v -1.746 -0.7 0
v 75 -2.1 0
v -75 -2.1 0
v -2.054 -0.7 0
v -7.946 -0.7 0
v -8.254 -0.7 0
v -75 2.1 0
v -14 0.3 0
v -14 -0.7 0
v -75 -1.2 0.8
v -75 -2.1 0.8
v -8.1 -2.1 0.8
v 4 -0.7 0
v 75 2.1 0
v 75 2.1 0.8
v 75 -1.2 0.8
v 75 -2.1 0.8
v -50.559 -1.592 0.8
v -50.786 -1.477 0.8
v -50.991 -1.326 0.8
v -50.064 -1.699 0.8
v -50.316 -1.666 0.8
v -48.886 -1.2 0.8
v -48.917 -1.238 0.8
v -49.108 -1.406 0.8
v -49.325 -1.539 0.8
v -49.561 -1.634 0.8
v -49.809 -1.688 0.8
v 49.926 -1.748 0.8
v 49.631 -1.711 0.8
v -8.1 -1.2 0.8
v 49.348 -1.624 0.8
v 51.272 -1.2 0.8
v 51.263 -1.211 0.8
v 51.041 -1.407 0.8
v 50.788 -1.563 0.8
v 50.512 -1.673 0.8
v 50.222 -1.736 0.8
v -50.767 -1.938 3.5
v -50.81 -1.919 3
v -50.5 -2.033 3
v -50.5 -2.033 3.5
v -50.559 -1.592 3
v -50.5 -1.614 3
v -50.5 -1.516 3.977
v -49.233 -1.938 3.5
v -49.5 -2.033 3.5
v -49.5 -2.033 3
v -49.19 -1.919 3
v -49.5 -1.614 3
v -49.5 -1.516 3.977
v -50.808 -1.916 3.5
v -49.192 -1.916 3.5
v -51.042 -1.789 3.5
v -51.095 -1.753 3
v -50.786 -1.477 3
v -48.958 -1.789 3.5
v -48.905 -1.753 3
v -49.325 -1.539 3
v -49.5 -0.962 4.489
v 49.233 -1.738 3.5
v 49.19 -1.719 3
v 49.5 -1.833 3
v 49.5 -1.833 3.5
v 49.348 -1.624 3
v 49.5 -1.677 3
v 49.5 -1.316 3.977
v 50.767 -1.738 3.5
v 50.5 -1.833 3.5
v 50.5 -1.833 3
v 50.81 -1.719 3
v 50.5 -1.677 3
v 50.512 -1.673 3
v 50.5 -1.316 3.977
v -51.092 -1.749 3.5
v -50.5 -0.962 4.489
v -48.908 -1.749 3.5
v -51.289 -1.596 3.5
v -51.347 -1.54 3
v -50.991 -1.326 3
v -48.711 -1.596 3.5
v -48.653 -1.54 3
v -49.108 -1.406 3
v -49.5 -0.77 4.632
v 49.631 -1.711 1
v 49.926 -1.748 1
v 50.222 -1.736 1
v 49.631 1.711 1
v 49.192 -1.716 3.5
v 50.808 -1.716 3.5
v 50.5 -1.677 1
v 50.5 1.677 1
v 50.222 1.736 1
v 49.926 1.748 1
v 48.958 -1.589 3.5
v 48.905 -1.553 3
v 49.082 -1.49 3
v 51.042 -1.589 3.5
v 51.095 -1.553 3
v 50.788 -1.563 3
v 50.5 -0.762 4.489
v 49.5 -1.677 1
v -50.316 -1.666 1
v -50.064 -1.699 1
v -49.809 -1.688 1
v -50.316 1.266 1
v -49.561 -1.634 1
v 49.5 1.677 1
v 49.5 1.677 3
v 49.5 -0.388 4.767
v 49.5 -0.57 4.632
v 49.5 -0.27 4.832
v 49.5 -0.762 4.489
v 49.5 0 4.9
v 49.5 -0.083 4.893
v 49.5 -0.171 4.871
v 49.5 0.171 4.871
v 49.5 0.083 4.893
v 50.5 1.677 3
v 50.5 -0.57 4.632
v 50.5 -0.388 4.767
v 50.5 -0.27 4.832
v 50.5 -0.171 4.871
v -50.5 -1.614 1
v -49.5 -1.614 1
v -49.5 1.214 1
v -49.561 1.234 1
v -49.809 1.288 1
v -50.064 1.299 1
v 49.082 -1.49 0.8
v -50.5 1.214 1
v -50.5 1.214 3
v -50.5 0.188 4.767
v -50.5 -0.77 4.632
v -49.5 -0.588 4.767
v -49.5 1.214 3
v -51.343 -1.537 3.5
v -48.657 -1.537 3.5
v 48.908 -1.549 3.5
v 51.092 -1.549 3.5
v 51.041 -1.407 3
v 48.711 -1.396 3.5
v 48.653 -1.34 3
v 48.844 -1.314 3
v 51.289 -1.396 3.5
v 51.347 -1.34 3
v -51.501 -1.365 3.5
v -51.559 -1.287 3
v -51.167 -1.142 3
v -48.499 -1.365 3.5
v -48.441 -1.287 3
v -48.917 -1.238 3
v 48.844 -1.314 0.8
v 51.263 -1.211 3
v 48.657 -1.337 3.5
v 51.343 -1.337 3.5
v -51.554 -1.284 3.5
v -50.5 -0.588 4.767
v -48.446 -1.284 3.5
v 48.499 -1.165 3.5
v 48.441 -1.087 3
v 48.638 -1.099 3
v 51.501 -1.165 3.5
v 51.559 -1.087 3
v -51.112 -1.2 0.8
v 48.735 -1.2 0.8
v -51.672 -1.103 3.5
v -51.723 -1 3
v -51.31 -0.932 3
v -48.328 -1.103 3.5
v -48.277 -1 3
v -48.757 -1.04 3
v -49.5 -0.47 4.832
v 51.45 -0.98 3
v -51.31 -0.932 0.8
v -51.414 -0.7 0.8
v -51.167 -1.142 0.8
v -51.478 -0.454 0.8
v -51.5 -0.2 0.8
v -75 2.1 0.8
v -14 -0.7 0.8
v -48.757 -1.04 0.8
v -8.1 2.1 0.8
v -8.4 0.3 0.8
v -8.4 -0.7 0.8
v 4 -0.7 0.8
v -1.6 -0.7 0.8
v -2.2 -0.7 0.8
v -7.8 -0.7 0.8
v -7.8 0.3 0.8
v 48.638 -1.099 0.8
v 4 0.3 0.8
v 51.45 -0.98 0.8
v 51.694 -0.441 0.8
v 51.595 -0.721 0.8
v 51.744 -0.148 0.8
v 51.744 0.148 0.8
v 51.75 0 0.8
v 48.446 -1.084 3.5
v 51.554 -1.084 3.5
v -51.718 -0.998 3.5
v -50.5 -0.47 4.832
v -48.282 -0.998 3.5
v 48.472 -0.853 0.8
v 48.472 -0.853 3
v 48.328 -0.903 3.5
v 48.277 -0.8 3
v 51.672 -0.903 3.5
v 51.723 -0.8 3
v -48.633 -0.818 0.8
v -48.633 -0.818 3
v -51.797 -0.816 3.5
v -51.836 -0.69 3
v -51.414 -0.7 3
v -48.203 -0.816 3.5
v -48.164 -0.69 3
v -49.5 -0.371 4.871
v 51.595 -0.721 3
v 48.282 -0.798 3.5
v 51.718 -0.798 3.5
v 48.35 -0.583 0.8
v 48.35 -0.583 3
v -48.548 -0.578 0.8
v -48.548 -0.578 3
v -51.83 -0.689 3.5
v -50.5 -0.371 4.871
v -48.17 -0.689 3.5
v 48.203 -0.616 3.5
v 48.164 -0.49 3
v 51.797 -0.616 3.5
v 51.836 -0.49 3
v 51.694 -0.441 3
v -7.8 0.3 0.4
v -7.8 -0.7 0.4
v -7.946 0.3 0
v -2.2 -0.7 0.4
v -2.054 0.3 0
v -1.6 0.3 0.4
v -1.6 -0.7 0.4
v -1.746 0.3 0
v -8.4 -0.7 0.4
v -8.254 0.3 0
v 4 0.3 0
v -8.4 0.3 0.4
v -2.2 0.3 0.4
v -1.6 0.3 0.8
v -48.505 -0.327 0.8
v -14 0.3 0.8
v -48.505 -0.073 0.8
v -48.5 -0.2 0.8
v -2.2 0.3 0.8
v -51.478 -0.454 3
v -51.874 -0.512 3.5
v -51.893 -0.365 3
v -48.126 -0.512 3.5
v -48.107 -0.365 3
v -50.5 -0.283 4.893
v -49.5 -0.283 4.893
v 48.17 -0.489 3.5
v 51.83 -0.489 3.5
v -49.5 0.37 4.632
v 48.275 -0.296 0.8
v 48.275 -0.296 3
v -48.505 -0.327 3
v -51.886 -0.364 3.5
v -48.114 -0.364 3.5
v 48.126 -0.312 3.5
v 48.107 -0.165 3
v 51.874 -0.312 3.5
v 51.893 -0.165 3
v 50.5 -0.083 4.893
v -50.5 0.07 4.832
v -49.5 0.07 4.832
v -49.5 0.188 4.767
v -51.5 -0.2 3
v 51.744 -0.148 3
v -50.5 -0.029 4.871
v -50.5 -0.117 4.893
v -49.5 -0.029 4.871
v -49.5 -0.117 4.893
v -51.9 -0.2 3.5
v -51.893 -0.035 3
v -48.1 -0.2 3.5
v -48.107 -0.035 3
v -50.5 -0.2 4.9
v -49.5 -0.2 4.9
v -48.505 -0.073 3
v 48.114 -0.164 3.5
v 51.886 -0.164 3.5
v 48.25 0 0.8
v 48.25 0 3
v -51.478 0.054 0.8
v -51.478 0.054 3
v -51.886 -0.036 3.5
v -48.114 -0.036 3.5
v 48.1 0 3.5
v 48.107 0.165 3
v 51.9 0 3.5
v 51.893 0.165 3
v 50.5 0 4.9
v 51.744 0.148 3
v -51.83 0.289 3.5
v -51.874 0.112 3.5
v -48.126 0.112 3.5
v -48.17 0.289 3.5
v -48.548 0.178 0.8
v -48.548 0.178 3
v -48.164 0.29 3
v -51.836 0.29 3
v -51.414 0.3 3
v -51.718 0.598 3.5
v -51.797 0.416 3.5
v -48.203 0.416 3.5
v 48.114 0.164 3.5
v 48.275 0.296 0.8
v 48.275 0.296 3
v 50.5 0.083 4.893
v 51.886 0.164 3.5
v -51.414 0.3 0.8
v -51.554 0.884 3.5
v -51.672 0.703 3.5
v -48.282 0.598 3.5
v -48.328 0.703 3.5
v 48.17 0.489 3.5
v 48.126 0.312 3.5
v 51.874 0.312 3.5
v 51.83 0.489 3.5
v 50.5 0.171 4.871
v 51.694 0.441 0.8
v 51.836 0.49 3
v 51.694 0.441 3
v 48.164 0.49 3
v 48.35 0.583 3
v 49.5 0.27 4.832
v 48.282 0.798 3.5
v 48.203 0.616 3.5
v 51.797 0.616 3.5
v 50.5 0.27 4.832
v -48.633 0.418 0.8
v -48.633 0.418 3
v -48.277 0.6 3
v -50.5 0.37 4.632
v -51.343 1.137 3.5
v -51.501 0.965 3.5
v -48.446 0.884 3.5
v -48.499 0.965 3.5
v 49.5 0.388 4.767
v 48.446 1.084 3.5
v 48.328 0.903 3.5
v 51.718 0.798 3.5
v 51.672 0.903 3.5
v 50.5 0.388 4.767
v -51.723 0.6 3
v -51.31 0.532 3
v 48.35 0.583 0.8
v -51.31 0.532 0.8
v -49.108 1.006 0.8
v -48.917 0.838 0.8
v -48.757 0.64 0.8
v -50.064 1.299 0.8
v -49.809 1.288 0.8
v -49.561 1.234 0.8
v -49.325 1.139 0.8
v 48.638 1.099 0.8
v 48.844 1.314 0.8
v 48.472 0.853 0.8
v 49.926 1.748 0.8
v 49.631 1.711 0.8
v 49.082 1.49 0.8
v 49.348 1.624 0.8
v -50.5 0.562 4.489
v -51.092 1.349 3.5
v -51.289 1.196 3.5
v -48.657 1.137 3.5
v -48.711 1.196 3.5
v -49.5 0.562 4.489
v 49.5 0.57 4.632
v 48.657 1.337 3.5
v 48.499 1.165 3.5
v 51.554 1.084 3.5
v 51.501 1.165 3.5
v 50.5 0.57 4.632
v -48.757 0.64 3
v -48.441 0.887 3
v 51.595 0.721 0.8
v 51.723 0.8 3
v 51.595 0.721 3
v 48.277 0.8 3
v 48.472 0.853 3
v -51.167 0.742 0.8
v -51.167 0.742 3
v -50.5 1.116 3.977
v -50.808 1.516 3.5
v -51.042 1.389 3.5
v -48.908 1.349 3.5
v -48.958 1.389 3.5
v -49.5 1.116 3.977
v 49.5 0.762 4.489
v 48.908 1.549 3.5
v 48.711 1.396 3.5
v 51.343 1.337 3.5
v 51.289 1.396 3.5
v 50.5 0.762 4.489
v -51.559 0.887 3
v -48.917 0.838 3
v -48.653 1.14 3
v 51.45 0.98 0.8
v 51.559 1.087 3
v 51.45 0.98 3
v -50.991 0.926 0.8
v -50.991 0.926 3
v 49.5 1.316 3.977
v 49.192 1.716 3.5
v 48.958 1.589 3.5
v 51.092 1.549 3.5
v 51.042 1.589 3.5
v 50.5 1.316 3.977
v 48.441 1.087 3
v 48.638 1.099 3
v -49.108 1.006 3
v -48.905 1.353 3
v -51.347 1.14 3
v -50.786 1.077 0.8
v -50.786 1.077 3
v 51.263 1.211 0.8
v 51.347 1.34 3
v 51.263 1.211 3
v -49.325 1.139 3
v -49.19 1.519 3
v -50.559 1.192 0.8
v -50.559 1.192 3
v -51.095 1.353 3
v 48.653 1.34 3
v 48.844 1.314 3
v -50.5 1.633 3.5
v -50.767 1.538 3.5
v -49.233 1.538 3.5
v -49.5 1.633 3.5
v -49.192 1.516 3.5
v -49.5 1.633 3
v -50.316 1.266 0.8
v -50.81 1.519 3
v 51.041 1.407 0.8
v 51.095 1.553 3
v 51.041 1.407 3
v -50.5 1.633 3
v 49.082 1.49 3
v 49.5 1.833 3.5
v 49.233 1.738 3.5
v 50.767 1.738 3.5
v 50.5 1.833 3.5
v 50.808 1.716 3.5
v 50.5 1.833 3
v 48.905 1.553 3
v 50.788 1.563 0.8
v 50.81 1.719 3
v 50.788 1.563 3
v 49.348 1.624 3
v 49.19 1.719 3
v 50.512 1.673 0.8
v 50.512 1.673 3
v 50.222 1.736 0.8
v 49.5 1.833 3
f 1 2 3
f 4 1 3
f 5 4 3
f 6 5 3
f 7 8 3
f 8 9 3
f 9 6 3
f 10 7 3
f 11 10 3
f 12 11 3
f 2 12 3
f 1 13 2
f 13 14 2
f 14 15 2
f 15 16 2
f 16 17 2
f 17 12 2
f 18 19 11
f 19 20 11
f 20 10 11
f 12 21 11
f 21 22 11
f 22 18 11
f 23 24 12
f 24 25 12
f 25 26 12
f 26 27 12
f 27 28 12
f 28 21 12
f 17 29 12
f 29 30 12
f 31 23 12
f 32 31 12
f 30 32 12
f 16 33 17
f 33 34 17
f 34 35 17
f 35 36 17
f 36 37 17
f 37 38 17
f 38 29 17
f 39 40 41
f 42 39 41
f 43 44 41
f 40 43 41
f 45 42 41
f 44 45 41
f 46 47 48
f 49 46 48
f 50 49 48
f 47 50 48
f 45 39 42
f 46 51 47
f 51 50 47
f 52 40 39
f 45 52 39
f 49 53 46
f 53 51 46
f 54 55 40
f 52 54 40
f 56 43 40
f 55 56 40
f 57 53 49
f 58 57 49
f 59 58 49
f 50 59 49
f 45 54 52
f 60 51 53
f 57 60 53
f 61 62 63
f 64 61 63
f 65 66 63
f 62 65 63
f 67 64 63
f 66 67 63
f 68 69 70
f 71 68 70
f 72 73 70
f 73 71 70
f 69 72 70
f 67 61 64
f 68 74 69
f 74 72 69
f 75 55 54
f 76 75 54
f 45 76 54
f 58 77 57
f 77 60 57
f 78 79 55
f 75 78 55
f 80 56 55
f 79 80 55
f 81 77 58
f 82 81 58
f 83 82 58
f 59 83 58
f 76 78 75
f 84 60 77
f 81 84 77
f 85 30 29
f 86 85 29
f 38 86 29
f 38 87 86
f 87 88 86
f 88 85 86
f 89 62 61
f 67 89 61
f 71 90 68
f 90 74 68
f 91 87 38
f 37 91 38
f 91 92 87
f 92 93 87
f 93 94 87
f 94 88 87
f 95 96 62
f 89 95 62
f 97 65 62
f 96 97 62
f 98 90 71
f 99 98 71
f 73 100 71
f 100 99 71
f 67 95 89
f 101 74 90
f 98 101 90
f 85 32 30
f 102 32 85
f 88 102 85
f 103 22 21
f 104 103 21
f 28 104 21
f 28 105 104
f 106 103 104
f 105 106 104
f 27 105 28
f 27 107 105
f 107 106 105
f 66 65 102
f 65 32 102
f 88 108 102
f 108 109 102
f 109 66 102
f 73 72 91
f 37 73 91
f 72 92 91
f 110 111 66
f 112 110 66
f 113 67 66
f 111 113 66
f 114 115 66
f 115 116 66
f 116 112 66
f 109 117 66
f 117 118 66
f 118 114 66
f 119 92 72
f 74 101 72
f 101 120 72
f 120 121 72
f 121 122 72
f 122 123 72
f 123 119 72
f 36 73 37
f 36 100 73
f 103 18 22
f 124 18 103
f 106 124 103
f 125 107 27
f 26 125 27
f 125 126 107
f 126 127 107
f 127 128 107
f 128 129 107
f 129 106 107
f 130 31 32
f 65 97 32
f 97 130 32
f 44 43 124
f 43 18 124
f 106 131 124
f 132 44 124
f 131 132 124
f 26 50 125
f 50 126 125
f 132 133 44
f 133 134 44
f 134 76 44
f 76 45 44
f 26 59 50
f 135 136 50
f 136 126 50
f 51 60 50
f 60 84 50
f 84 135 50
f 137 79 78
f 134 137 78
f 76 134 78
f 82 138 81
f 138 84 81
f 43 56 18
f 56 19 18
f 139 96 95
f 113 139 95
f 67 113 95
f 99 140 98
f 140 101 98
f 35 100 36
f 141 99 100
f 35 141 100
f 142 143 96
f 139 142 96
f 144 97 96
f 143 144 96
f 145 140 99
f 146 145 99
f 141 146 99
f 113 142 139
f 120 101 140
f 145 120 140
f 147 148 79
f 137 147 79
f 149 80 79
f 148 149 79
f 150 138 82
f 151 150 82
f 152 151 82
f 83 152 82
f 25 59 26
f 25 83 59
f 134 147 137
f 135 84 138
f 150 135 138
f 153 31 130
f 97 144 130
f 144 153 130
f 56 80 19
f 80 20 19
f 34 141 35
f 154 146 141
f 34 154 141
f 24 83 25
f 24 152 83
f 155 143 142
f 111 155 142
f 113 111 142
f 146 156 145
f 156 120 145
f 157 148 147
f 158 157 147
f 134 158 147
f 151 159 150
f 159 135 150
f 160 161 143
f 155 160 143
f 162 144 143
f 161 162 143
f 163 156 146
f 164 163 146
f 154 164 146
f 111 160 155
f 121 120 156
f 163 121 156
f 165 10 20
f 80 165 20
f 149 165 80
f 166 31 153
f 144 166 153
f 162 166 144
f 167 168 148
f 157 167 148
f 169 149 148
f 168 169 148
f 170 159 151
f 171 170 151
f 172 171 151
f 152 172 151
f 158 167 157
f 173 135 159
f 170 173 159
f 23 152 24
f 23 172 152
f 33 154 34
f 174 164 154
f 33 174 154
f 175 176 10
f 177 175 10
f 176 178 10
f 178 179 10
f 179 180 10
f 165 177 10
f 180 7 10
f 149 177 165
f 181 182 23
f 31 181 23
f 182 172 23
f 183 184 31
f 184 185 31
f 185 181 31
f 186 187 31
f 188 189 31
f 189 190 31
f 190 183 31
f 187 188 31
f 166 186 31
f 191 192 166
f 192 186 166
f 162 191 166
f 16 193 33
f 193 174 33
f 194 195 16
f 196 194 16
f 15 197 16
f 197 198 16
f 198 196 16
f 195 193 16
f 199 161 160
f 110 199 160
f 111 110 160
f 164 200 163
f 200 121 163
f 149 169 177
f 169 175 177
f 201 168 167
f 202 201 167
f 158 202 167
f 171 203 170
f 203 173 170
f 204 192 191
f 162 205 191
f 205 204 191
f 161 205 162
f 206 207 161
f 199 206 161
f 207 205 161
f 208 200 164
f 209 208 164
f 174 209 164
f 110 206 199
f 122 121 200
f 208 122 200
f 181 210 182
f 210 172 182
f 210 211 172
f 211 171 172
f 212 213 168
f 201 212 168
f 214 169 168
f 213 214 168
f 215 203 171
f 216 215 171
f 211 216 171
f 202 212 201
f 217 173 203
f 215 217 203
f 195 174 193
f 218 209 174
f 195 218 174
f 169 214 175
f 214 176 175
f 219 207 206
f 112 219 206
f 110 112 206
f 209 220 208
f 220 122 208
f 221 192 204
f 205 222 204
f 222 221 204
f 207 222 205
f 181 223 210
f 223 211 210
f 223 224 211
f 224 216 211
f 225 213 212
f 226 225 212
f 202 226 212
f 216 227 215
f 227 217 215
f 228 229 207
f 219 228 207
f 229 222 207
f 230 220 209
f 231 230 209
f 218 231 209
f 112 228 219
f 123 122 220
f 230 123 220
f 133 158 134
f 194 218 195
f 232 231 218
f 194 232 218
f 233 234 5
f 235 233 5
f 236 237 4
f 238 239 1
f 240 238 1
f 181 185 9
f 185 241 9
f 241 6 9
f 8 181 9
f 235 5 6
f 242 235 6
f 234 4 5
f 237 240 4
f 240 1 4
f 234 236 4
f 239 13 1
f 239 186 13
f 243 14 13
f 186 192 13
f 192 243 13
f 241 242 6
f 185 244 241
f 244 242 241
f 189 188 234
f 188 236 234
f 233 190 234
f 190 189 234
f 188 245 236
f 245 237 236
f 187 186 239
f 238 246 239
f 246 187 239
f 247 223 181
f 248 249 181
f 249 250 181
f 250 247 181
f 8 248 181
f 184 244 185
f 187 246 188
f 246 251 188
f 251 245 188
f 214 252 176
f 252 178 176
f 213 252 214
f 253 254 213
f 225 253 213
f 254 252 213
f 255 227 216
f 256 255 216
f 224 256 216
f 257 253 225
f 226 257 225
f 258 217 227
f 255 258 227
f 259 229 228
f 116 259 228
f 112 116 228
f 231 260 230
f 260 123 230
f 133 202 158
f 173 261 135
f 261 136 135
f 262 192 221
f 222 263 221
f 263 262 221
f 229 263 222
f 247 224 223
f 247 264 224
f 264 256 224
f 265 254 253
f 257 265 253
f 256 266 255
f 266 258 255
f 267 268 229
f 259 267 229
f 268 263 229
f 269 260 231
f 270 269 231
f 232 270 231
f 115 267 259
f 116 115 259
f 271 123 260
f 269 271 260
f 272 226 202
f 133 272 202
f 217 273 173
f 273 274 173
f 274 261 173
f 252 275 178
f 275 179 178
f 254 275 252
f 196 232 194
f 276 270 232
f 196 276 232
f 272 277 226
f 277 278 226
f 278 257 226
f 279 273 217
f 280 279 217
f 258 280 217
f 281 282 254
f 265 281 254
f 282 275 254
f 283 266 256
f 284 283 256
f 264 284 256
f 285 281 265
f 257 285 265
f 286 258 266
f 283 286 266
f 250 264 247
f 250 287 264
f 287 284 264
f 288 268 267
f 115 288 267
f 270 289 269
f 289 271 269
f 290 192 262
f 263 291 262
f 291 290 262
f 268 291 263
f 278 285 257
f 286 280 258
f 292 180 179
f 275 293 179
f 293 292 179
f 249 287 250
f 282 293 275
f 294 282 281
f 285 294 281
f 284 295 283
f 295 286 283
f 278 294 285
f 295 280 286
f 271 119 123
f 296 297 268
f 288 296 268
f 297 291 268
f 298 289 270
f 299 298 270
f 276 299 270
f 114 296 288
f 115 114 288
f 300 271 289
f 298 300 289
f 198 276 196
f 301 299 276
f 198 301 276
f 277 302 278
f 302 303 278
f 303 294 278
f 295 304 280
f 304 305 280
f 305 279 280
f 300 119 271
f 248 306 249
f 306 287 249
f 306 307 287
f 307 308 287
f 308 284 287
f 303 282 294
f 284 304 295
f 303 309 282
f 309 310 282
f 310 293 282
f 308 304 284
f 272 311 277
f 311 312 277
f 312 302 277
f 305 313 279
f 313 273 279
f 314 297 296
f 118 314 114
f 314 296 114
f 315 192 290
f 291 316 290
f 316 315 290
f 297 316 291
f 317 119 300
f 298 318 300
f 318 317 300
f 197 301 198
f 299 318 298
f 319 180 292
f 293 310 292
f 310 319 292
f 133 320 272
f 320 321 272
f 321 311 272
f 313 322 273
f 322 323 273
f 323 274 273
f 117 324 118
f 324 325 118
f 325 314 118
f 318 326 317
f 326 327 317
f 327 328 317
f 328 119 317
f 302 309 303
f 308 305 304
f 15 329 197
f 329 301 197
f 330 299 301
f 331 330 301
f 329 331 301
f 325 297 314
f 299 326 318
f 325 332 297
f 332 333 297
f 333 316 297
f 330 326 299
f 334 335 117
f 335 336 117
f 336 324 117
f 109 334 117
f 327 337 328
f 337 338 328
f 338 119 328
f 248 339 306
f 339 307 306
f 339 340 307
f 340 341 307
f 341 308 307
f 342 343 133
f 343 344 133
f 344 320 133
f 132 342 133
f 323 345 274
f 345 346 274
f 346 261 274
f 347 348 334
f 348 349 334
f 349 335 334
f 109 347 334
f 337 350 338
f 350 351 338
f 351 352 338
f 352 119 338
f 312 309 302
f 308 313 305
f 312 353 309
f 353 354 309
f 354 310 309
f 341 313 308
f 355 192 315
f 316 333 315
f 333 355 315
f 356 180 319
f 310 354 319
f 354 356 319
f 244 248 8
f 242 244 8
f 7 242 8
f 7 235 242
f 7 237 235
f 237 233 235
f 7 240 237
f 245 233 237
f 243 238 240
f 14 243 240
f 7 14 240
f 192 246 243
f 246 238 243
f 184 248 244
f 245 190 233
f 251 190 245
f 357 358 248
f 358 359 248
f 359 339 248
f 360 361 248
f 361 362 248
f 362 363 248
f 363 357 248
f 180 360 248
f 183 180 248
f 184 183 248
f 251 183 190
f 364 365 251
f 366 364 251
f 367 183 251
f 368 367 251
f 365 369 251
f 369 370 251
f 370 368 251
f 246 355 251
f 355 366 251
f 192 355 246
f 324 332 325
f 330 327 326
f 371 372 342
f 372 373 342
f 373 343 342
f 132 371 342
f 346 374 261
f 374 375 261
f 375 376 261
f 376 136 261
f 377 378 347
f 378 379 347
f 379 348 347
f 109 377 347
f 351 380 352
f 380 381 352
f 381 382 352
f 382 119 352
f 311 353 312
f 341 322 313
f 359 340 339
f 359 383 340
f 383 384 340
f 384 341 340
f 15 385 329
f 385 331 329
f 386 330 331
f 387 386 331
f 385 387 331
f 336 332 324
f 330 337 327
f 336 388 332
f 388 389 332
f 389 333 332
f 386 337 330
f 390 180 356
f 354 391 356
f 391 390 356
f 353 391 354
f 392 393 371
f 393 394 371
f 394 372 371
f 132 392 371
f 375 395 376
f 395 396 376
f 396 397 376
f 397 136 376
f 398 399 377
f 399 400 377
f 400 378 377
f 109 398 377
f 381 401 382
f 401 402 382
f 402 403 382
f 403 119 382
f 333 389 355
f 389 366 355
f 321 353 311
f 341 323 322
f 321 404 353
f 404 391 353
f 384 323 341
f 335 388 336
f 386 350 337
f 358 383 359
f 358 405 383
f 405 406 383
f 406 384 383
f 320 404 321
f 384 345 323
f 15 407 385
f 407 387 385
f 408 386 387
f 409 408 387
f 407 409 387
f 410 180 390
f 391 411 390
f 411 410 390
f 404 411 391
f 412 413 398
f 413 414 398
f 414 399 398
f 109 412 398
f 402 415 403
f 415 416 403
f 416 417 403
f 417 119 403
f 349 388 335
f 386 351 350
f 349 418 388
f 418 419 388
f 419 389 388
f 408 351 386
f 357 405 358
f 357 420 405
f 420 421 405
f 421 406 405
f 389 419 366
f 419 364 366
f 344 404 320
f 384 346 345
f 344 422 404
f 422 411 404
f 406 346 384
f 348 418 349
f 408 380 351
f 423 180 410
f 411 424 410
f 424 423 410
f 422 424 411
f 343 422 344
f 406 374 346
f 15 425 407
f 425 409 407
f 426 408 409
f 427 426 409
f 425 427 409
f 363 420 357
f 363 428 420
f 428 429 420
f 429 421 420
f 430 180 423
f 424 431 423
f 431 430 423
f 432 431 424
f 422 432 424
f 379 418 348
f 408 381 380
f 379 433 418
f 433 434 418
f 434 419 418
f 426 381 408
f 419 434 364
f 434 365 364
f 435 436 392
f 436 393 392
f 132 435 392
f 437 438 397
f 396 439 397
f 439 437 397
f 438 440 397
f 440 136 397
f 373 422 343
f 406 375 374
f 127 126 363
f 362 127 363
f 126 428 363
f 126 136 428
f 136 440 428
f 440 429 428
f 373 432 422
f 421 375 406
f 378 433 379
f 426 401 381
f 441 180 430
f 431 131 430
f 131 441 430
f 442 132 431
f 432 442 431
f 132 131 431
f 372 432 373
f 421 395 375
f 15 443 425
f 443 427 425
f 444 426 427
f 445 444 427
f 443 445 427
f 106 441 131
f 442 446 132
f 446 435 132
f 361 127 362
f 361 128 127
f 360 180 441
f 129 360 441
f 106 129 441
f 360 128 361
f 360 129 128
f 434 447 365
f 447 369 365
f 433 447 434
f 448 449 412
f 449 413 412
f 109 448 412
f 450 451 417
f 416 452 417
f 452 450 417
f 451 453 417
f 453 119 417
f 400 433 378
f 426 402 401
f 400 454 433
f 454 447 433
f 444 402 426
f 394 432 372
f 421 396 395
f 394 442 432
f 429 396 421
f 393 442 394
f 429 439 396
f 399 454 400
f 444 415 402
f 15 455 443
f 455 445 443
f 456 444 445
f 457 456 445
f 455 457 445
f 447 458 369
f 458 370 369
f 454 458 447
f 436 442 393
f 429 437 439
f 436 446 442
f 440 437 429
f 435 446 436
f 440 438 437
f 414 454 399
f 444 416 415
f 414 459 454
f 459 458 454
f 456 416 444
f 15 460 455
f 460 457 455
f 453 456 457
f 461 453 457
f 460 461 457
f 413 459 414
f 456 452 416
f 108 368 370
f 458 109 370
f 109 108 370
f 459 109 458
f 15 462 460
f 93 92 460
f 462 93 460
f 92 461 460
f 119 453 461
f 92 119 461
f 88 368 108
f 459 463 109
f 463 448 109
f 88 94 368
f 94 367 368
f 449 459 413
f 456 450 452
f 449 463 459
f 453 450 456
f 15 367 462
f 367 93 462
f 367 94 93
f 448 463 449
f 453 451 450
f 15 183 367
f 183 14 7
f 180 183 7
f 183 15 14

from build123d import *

# Parameters (mm, degrees)
SKICA2_W                 = 150
SKICA2_H                 = 4.2
SKICA2_W_2               = 18
SKICA2_H_2               = 1
P_IDAT_VYSUNUT_M2_DEPTH  = 0.8
SKICA3_R                 = 1.5
SKICA3_R_2               = 1.75
P_IDAT_VYSUNUT_M3_DEPTH  = 2.2
SKICA4_W                 = 0.6
SKICA4_H                 = 1
SKICA4_H_2               = 1.2
P_IDAT_VYSUNUT_M4_DEPTH  = 0.8
ZKOSEN_1_SIZE            = 0.4
ZKOSEN_1_SIZE2           = 0.145588094
ZKOSEN_1_PART_2_SIZE     = 0.4
ZKOSEN_1_PART_2_SIZE2    = 0.145588094
ZKOSEN_1_PART_3_SIZE     = 0.4
ZKOSEN_1_PART_3_SIZE2    = 0.145588094
ZKOSEN_1_PART_4_SIZE     = 0.4
ZKOSEN_1_PART_4_SIZE2    = 0.145588094
SKICA5_R                 = 1.9
P_IDAT_VYSUNUT_M5_DEPTH  = 2
ZKOSEN_2_SIZE            = 1.5
SKICA7_W                 = 1
SKICA7_H                 = 5
ODEBRAT_VYSUNUT_M1_DEPTH = 4


with BuildPart() as part:
    # Skica2 → Přidat vysunutím2 (new body)
    with BuildSketch(Plane.XY):
        Rectangle(SKICA2_W, SKICA2_H)
        with Locations((-5, -0.2)):
            Rectangle(SKICA2_W_2, SKICA2_H_2, mode=Mode.SUBTRACT)
    extrude(amount=P_IDAT_VYSUNUT_M2_DEPTH)

    # Skica3 → Přidat vysunutím3 (add)
    with BuildSketch(Plane.XY.offset(0.8)):
        with Locations((-50, -0.2)):
            Circle(SKICA3_R)
        with Locations((50, 0)):
            Circle(SKICA3_R_2)
    extrude(amount=P_IDAT_VYSUNUT_M3_DEPTH)

    # Skica4 → Přidat vysunutím4 (add)
    with BuildSketch(Plane(origin=(0, 0, 0), x_dir=(-1, 0, 0), z_dir=(0, 0, -1))):
        with Locations((1.9, -0.2)):
            Rectangle(SKICA4_W, SKICA4_H)
        with Locations((8.1, -0.1)):
            Rectangle(SKICA4_W, SKICA4_H_2)
    extrude(amount=-P_IDAT_VYSUNUT_M4_DEPTH)

    # Zkosení1
    zkosen_1_edges = [part.edges().sort_by_distance(p)[0] for p in [
        (-1.6, -0.2, 0),
    ]]
    zkosen_1_side = [part.faces().sort_by_distance(p)[0] for p in [
        (-1.6, -0.2, 0.4),
    ]]
    chamfer(zkosen_1_edges, length=ZKOSEN_1_SIZE, length2=ZKOSEN_1_SIZE2, reference=zkosen_1_side[0])

    # Zkosení1 part 2
    zkosen_1_part_2_edges = [part.edges().sort_by_distance(p)[0] for p in [
        (-2.2, -0.2, 0),
    ]]
    zkosen_1_part_2_side = [part.faces().sort_by_distance(p)[0] for p in [
        (-2.2, -0.2, 0.4),
    ]]
    chamfer(zkosen_1_part_2_edges, length=ZKOSEN_1_PART_2_SIZE, length2=ZKOSEN_1_PART_2_SIZE2, reference=zkosen_1_part_2_side[0])

    # Zkosení1 part 3
    zkosen_1_part_3_edges = [part.edges().sort_by_distance(p)[0] for p in [
        (-8.4, -0.2, 0),
    ]]
    zkosen_1_part_3_side = [part.faces().sort_by_distance(p)[0] for p in [
        (-8.4, -0.2, 0.4),
    ]]
    chamfer(zkosen_1_part_3_edges, length=ZKOSEN_1_PART_3_SIZE, length2=ZKOSEN_1_PART_3_SIZE2, reference=zkosen_1_part_3_side[0])

    # Zkosení1 part 4
    zkosen_1_part_4_edges = [part.edges().sort_by_distance(p)[0] for p in [
        (-7.8, -0.2, 0),
    ]]
    zkosen_1_part_4_side = [part.faces().sort_by_distance(p)[0] for p in [
        (-7.8, -0.2, 0.4),
    ]]
    chamfer(zkosen_1_part_4_edges, length=ZKOSEN_1_PART_4_SIZE, length2=ZKOSEN_1_PART_4_SIZE2, reference=zkosen_1_part_4_side[0])

    # Skica5 → Přidat vysunutím5 (add)
    with BuildSketch(Plane.XY.offset(3)):
        with Locations((-50, -0.2)):
            Circle(SKICA5_R)
        with Locations((50, 0)):
            Circle(SKICA5_R)
    extrude(amount=P_IDAT_VYSUNUT_M5_DEPTH)

    # Zkosení2
    zkosen_2_edges = [part.edges().sort_by_distance(p)[0] for p in [
        (-51.9, -0.2, 5),
        (48.1, 0, 5),
    ]]
    chamfer(zkosen_2_edges, length=ZKOSEN_2_SIZE)

    # Skica7 → Odebrat vysunutím1 (cut)
    with BuildSketch(Plane.XY.offset(5)):
        with Locations((-50, -0.2)):
            Rectangle(SKICA7_W, SKICA7_H)
        with Locations((50, 0)):
            Rectangle(SKICA7_W, SKICA7_H)
    extrude(amount=-ODEBRAT_VYSUNUT_M1_DEPTH, mode=Mode.SUBTRACT)


solid = part.part
